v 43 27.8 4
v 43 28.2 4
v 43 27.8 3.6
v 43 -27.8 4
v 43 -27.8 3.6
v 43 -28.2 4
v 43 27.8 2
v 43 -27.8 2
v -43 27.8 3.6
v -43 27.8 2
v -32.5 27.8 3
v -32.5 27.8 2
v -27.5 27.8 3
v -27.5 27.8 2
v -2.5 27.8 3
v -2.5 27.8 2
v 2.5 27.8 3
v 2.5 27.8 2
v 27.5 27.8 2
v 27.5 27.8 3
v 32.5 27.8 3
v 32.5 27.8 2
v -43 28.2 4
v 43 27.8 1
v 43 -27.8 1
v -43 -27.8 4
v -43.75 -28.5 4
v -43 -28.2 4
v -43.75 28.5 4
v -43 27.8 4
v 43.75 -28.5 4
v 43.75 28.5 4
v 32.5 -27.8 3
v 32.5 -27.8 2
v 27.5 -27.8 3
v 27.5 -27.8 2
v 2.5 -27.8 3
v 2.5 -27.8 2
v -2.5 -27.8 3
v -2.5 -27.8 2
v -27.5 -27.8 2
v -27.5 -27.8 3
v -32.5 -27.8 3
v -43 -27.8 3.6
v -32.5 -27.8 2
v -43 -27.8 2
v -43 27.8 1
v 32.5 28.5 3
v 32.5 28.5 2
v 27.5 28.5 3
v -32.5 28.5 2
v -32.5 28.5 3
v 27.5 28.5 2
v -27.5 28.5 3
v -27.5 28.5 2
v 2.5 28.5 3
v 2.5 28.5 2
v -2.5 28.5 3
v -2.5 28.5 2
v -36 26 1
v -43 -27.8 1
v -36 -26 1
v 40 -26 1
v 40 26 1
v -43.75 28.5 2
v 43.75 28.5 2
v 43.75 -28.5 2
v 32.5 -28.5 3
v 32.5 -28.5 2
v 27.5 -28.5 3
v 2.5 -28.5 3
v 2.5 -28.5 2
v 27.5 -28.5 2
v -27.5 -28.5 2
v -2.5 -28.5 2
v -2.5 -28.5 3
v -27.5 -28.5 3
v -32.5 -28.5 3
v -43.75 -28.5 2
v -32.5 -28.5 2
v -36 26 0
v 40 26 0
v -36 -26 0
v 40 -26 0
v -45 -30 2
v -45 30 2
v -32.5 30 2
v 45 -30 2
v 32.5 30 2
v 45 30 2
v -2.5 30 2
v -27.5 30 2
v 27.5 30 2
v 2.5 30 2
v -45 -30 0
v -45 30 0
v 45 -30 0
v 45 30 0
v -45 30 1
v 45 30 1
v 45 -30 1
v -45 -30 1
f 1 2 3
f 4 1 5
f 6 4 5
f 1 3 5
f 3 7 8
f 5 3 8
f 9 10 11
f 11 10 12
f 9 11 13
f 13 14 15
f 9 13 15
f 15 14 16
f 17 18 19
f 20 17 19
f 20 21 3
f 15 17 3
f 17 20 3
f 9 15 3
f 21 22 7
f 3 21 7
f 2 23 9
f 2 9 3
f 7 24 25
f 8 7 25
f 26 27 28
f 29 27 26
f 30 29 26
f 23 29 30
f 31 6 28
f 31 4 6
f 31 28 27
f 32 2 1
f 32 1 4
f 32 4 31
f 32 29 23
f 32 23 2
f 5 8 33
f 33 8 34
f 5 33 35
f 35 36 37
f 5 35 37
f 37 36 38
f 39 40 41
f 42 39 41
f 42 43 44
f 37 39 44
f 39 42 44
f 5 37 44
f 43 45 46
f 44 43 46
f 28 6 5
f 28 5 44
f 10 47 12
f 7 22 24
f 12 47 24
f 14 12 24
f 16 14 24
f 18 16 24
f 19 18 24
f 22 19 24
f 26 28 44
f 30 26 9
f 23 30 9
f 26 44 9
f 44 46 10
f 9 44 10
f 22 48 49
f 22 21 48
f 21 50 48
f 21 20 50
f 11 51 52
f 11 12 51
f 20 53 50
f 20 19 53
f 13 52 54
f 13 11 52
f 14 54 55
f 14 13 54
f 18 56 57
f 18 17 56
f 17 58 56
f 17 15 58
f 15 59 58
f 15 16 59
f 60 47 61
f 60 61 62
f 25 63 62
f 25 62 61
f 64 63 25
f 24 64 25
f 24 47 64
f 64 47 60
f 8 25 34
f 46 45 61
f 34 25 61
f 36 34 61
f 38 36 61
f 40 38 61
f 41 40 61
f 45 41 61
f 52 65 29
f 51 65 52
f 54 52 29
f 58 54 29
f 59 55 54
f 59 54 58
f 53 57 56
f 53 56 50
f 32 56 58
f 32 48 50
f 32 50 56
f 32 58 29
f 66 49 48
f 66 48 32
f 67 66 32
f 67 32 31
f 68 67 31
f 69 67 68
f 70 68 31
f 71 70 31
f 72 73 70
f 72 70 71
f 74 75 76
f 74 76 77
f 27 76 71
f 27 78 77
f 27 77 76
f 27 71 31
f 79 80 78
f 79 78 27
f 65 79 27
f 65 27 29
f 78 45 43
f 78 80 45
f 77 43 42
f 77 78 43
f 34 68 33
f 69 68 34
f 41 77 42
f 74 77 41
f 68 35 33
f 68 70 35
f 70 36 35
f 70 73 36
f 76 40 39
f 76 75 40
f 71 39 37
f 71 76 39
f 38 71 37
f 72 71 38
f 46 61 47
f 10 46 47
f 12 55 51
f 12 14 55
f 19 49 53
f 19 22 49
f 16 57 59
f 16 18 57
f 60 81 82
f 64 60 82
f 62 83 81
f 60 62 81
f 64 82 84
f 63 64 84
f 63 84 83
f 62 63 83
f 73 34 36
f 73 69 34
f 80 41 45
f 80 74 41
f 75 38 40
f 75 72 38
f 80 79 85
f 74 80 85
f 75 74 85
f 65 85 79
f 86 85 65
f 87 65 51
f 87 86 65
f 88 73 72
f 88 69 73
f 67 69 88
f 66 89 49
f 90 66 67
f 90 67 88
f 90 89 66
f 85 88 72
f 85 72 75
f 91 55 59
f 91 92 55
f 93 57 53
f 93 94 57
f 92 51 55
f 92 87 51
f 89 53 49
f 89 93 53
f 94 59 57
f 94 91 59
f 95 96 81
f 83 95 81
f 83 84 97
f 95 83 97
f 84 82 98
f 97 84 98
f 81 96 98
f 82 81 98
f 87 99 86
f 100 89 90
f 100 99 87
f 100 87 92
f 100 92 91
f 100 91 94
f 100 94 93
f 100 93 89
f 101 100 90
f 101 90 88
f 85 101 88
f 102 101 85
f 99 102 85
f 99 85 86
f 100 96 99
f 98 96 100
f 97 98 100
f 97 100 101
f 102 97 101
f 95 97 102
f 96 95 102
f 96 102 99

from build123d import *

# Parameters (mm, degrees)
SKETCH_W      = 90
SKETCH_H      = 60
SKETCH_W_2    = 76
SKETCH_H_2    = 52
PAD_DEPTH     = 1
SKETCH001_W   = 90
SKETCH001_H   = 60
SKETCH001_W_2 = 86
SKETCH001_H_2 = 55.6
PAD001_DEPTH  = 1
SKETCH002_W   = 87.5
SKETCH002_H   = 57
SKETCH002_W_2 = 86
SKETCH002_H_2 = 55.6
PAD002_DEPTH  = 2
SKETCH003_W   = 5
SKETCH003_H   = 1
POCKET_DEPTH  = 58.501
CHAMFER_SIZE  = 0.4


with BuildPart() as part:
    # Sketch → Pad (new body)
    with BuildSketch(Plane.XY):
        Rectangle(SKETCH_W, SKETCH_H)
        with Locations((2, 0)):
            Rectangle(SKETCH_W_2, SKETCH_H_2, mode=Mode.SUBTRACT)
    extrude(amount=PAD_DEPTH)

    # Sketch001 → Pad001 (new body)
    with BuildSketch(Plane.XY.offset(1)):
        Rectangle(SKETCH001_W, SKETCH001_H)
        Rectangle(SKETCH001_W_2, SKETCH001_H_2, mode=Mode.SUBTRACT)
    extrude(amount=PAD001_DEPTH)

    # Sketch002 → Pad002 (new body)
    with BuildSketch(Plane.XY.offset(2)):
        Rectangle(SKETCH002_W, SKETCH002_H)
        Rectangle(SKETCH002_W_2, SKETCH002_H_2, mode=Mode.SUBTRACT)
    extrude(amount=PAD002_DEPTH)

    # Sketch003 → Pocket (cut, through all)
    with BuildSketch(Plane.XZ.offset(28.5)):
        with Locations((-30, 2.5)):
            Rectangle(SKETCH003_W, SKETCH003_H)
        with Locations((0, 2.5)):
            Rectangle(SKETCH003_W, SKETCH003_H)
        with Locations((30, 2.5)):
            Rectangle(SKETCH003_W, SKETCH003_H)
    extrude(amount=-POCKET_DEPTH, mode=Mode.SUBTRACT)

    # Chamfer
    chamfer_edges = [part.edges().sort_by_distance(p)[0] for p in [
        (0, 27.8, 4),
        (0, -27.8, 4),
    ]]
    chamfer(chamfer_edges, length=CHAMFER_SIZE)


solid = part.part
